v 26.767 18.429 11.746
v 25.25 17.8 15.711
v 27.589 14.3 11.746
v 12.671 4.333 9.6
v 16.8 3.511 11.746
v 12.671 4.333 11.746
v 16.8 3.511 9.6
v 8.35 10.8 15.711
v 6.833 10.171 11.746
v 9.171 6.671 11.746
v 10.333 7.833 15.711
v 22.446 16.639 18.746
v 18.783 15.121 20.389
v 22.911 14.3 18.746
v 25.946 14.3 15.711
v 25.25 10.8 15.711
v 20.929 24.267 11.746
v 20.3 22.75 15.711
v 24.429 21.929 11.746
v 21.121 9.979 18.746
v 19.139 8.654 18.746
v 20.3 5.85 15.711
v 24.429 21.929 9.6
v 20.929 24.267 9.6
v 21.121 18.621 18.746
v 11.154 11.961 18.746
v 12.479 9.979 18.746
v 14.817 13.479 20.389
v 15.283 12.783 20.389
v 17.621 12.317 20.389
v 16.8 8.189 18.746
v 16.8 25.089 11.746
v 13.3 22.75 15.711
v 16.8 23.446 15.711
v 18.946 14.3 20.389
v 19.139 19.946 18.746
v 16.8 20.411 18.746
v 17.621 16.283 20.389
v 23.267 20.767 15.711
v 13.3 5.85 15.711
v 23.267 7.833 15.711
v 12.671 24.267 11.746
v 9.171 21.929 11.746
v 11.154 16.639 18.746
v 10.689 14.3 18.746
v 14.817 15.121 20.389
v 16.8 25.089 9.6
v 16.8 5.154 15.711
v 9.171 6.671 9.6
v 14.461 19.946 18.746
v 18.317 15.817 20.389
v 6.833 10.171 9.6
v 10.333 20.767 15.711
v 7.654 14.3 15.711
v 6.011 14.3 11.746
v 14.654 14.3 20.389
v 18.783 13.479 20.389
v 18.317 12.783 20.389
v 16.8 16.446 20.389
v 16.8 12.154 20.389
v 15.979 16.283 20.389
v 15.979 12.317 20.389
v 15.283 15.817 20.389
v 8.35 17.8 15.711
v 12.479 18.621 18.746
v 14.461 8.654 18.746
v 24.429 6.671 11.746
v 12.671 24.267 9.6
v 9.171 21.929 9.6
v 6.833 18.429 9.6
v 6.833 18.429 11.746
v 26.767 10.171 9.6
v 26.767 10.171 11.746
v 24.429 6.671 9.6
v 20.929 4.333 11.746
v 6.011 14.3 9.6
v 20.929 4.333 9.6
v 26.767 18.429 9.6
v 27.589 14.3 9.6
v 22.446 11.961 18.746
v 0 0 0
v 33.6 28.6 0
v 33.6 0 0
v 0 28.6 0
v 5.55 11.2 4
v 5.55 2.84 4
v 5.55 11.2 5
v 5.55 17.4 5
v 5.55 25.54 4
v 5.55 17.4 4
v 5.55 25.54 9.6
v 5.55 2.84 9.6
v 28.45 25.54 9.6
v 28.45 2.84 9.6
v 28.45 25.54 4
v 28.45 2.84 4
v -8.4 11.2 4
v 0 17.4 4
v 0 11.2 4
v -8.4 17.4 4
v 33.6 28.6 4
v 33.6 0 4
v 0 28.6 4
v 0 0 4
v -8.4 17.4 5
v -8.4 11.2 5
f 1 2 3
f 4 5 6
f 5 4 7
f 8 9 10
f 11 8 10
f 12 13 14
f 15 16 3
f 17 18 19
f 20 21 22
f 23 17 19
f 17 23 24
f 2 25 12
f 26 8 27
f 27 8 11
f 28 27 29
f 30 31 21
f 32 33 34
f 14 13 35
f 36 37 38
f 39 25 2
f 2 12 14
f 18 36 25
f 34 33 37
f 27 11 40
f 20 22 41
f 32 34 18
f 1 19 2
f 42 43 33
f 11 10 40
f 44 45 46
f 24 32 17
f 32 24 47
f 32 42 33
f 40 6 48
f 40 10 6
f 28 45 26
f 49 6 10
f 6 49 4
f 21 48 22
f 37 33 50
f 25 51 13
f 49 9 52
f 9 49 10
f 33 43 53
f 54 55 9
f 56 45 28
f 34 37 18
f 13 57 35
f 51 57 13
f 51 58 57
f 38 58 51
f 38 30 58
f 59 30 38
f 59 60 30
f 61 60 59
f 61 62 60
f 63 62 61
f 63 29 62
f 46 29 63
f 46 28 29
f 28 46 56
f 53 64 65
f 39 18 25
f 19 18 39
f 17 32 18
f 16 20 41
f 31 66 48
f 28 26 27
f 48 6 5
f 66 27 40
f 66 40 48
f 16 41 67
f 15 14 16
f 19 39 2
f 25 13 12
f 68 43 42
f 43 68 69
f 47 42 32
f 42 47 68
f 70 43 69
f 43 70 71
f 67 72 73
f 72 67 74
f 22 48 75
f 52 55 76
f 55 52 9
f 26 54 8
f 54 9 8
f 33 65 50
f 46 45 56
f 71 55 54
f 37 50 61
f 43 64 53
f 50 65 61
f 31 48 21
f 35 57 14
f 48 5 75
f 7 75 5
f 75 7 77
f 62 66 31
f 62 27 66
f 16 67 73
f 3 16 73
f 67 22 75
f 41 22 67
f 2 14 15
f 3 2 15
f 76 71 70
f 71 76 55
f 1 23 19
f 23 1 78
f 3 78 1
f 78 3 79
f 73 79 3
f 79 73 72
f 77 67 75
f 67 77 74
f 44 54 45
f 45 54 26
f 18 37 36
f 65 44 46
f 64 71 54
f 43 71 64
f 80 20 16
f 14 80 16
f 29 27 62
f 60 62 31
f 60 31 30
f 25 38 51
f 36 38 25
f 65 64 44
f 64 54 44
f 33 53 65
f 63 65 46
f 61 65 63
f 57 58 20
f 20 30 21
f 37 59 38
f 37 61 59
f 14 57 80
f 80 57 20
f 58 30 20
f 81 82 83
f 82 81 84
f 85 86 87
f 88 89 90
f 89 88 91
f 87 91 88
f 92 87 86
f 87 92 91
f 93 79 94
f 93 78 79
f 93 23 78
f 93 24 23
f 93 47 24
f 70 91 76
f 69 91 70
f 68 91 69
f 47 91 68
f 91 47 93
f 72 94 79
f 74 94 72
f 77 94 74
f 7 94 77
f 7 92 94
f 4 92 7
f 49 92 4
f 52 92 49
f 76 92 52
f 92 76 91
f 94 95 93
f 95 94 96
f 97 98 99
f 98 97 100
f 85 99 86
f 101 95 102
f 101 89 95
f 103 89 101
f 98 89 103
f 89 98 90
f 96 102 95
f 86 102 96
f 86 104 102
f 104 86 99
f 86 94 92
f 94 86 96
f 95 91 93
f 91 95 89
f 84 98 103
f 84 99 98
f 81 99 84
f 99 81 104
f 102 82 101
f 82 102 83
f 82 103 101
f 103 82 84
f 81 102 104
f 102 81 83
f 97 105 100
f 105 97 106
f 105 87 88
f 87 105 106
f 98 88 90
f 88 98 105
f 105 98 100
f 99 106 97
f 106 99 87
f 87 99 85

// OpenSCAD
// A PIR motion sensor ordered from https://www.sparkfun.com/products/13285

$fn = 16;

length = 33.6;
width = 28.6;
height = 4;

module board() {
    cube([length, width, height]);
}

module dome() {
    translate([5.55, 2.84, height]) cube([22.9, 22.7, 5.6]);
    difference() {
        translate([length/2, width/2, height + 5.6]) sphere(r = 22 / 2);
        translate([0, 0, -10]) cube([length, width, 10]);
    }
}

module wire() {
    translate([-length/4, (width - 6.2)/2, height]) cube([length/2, 6.2, 1]);
}


color("green") board();
color("grey") dome();
color("black") wire();
